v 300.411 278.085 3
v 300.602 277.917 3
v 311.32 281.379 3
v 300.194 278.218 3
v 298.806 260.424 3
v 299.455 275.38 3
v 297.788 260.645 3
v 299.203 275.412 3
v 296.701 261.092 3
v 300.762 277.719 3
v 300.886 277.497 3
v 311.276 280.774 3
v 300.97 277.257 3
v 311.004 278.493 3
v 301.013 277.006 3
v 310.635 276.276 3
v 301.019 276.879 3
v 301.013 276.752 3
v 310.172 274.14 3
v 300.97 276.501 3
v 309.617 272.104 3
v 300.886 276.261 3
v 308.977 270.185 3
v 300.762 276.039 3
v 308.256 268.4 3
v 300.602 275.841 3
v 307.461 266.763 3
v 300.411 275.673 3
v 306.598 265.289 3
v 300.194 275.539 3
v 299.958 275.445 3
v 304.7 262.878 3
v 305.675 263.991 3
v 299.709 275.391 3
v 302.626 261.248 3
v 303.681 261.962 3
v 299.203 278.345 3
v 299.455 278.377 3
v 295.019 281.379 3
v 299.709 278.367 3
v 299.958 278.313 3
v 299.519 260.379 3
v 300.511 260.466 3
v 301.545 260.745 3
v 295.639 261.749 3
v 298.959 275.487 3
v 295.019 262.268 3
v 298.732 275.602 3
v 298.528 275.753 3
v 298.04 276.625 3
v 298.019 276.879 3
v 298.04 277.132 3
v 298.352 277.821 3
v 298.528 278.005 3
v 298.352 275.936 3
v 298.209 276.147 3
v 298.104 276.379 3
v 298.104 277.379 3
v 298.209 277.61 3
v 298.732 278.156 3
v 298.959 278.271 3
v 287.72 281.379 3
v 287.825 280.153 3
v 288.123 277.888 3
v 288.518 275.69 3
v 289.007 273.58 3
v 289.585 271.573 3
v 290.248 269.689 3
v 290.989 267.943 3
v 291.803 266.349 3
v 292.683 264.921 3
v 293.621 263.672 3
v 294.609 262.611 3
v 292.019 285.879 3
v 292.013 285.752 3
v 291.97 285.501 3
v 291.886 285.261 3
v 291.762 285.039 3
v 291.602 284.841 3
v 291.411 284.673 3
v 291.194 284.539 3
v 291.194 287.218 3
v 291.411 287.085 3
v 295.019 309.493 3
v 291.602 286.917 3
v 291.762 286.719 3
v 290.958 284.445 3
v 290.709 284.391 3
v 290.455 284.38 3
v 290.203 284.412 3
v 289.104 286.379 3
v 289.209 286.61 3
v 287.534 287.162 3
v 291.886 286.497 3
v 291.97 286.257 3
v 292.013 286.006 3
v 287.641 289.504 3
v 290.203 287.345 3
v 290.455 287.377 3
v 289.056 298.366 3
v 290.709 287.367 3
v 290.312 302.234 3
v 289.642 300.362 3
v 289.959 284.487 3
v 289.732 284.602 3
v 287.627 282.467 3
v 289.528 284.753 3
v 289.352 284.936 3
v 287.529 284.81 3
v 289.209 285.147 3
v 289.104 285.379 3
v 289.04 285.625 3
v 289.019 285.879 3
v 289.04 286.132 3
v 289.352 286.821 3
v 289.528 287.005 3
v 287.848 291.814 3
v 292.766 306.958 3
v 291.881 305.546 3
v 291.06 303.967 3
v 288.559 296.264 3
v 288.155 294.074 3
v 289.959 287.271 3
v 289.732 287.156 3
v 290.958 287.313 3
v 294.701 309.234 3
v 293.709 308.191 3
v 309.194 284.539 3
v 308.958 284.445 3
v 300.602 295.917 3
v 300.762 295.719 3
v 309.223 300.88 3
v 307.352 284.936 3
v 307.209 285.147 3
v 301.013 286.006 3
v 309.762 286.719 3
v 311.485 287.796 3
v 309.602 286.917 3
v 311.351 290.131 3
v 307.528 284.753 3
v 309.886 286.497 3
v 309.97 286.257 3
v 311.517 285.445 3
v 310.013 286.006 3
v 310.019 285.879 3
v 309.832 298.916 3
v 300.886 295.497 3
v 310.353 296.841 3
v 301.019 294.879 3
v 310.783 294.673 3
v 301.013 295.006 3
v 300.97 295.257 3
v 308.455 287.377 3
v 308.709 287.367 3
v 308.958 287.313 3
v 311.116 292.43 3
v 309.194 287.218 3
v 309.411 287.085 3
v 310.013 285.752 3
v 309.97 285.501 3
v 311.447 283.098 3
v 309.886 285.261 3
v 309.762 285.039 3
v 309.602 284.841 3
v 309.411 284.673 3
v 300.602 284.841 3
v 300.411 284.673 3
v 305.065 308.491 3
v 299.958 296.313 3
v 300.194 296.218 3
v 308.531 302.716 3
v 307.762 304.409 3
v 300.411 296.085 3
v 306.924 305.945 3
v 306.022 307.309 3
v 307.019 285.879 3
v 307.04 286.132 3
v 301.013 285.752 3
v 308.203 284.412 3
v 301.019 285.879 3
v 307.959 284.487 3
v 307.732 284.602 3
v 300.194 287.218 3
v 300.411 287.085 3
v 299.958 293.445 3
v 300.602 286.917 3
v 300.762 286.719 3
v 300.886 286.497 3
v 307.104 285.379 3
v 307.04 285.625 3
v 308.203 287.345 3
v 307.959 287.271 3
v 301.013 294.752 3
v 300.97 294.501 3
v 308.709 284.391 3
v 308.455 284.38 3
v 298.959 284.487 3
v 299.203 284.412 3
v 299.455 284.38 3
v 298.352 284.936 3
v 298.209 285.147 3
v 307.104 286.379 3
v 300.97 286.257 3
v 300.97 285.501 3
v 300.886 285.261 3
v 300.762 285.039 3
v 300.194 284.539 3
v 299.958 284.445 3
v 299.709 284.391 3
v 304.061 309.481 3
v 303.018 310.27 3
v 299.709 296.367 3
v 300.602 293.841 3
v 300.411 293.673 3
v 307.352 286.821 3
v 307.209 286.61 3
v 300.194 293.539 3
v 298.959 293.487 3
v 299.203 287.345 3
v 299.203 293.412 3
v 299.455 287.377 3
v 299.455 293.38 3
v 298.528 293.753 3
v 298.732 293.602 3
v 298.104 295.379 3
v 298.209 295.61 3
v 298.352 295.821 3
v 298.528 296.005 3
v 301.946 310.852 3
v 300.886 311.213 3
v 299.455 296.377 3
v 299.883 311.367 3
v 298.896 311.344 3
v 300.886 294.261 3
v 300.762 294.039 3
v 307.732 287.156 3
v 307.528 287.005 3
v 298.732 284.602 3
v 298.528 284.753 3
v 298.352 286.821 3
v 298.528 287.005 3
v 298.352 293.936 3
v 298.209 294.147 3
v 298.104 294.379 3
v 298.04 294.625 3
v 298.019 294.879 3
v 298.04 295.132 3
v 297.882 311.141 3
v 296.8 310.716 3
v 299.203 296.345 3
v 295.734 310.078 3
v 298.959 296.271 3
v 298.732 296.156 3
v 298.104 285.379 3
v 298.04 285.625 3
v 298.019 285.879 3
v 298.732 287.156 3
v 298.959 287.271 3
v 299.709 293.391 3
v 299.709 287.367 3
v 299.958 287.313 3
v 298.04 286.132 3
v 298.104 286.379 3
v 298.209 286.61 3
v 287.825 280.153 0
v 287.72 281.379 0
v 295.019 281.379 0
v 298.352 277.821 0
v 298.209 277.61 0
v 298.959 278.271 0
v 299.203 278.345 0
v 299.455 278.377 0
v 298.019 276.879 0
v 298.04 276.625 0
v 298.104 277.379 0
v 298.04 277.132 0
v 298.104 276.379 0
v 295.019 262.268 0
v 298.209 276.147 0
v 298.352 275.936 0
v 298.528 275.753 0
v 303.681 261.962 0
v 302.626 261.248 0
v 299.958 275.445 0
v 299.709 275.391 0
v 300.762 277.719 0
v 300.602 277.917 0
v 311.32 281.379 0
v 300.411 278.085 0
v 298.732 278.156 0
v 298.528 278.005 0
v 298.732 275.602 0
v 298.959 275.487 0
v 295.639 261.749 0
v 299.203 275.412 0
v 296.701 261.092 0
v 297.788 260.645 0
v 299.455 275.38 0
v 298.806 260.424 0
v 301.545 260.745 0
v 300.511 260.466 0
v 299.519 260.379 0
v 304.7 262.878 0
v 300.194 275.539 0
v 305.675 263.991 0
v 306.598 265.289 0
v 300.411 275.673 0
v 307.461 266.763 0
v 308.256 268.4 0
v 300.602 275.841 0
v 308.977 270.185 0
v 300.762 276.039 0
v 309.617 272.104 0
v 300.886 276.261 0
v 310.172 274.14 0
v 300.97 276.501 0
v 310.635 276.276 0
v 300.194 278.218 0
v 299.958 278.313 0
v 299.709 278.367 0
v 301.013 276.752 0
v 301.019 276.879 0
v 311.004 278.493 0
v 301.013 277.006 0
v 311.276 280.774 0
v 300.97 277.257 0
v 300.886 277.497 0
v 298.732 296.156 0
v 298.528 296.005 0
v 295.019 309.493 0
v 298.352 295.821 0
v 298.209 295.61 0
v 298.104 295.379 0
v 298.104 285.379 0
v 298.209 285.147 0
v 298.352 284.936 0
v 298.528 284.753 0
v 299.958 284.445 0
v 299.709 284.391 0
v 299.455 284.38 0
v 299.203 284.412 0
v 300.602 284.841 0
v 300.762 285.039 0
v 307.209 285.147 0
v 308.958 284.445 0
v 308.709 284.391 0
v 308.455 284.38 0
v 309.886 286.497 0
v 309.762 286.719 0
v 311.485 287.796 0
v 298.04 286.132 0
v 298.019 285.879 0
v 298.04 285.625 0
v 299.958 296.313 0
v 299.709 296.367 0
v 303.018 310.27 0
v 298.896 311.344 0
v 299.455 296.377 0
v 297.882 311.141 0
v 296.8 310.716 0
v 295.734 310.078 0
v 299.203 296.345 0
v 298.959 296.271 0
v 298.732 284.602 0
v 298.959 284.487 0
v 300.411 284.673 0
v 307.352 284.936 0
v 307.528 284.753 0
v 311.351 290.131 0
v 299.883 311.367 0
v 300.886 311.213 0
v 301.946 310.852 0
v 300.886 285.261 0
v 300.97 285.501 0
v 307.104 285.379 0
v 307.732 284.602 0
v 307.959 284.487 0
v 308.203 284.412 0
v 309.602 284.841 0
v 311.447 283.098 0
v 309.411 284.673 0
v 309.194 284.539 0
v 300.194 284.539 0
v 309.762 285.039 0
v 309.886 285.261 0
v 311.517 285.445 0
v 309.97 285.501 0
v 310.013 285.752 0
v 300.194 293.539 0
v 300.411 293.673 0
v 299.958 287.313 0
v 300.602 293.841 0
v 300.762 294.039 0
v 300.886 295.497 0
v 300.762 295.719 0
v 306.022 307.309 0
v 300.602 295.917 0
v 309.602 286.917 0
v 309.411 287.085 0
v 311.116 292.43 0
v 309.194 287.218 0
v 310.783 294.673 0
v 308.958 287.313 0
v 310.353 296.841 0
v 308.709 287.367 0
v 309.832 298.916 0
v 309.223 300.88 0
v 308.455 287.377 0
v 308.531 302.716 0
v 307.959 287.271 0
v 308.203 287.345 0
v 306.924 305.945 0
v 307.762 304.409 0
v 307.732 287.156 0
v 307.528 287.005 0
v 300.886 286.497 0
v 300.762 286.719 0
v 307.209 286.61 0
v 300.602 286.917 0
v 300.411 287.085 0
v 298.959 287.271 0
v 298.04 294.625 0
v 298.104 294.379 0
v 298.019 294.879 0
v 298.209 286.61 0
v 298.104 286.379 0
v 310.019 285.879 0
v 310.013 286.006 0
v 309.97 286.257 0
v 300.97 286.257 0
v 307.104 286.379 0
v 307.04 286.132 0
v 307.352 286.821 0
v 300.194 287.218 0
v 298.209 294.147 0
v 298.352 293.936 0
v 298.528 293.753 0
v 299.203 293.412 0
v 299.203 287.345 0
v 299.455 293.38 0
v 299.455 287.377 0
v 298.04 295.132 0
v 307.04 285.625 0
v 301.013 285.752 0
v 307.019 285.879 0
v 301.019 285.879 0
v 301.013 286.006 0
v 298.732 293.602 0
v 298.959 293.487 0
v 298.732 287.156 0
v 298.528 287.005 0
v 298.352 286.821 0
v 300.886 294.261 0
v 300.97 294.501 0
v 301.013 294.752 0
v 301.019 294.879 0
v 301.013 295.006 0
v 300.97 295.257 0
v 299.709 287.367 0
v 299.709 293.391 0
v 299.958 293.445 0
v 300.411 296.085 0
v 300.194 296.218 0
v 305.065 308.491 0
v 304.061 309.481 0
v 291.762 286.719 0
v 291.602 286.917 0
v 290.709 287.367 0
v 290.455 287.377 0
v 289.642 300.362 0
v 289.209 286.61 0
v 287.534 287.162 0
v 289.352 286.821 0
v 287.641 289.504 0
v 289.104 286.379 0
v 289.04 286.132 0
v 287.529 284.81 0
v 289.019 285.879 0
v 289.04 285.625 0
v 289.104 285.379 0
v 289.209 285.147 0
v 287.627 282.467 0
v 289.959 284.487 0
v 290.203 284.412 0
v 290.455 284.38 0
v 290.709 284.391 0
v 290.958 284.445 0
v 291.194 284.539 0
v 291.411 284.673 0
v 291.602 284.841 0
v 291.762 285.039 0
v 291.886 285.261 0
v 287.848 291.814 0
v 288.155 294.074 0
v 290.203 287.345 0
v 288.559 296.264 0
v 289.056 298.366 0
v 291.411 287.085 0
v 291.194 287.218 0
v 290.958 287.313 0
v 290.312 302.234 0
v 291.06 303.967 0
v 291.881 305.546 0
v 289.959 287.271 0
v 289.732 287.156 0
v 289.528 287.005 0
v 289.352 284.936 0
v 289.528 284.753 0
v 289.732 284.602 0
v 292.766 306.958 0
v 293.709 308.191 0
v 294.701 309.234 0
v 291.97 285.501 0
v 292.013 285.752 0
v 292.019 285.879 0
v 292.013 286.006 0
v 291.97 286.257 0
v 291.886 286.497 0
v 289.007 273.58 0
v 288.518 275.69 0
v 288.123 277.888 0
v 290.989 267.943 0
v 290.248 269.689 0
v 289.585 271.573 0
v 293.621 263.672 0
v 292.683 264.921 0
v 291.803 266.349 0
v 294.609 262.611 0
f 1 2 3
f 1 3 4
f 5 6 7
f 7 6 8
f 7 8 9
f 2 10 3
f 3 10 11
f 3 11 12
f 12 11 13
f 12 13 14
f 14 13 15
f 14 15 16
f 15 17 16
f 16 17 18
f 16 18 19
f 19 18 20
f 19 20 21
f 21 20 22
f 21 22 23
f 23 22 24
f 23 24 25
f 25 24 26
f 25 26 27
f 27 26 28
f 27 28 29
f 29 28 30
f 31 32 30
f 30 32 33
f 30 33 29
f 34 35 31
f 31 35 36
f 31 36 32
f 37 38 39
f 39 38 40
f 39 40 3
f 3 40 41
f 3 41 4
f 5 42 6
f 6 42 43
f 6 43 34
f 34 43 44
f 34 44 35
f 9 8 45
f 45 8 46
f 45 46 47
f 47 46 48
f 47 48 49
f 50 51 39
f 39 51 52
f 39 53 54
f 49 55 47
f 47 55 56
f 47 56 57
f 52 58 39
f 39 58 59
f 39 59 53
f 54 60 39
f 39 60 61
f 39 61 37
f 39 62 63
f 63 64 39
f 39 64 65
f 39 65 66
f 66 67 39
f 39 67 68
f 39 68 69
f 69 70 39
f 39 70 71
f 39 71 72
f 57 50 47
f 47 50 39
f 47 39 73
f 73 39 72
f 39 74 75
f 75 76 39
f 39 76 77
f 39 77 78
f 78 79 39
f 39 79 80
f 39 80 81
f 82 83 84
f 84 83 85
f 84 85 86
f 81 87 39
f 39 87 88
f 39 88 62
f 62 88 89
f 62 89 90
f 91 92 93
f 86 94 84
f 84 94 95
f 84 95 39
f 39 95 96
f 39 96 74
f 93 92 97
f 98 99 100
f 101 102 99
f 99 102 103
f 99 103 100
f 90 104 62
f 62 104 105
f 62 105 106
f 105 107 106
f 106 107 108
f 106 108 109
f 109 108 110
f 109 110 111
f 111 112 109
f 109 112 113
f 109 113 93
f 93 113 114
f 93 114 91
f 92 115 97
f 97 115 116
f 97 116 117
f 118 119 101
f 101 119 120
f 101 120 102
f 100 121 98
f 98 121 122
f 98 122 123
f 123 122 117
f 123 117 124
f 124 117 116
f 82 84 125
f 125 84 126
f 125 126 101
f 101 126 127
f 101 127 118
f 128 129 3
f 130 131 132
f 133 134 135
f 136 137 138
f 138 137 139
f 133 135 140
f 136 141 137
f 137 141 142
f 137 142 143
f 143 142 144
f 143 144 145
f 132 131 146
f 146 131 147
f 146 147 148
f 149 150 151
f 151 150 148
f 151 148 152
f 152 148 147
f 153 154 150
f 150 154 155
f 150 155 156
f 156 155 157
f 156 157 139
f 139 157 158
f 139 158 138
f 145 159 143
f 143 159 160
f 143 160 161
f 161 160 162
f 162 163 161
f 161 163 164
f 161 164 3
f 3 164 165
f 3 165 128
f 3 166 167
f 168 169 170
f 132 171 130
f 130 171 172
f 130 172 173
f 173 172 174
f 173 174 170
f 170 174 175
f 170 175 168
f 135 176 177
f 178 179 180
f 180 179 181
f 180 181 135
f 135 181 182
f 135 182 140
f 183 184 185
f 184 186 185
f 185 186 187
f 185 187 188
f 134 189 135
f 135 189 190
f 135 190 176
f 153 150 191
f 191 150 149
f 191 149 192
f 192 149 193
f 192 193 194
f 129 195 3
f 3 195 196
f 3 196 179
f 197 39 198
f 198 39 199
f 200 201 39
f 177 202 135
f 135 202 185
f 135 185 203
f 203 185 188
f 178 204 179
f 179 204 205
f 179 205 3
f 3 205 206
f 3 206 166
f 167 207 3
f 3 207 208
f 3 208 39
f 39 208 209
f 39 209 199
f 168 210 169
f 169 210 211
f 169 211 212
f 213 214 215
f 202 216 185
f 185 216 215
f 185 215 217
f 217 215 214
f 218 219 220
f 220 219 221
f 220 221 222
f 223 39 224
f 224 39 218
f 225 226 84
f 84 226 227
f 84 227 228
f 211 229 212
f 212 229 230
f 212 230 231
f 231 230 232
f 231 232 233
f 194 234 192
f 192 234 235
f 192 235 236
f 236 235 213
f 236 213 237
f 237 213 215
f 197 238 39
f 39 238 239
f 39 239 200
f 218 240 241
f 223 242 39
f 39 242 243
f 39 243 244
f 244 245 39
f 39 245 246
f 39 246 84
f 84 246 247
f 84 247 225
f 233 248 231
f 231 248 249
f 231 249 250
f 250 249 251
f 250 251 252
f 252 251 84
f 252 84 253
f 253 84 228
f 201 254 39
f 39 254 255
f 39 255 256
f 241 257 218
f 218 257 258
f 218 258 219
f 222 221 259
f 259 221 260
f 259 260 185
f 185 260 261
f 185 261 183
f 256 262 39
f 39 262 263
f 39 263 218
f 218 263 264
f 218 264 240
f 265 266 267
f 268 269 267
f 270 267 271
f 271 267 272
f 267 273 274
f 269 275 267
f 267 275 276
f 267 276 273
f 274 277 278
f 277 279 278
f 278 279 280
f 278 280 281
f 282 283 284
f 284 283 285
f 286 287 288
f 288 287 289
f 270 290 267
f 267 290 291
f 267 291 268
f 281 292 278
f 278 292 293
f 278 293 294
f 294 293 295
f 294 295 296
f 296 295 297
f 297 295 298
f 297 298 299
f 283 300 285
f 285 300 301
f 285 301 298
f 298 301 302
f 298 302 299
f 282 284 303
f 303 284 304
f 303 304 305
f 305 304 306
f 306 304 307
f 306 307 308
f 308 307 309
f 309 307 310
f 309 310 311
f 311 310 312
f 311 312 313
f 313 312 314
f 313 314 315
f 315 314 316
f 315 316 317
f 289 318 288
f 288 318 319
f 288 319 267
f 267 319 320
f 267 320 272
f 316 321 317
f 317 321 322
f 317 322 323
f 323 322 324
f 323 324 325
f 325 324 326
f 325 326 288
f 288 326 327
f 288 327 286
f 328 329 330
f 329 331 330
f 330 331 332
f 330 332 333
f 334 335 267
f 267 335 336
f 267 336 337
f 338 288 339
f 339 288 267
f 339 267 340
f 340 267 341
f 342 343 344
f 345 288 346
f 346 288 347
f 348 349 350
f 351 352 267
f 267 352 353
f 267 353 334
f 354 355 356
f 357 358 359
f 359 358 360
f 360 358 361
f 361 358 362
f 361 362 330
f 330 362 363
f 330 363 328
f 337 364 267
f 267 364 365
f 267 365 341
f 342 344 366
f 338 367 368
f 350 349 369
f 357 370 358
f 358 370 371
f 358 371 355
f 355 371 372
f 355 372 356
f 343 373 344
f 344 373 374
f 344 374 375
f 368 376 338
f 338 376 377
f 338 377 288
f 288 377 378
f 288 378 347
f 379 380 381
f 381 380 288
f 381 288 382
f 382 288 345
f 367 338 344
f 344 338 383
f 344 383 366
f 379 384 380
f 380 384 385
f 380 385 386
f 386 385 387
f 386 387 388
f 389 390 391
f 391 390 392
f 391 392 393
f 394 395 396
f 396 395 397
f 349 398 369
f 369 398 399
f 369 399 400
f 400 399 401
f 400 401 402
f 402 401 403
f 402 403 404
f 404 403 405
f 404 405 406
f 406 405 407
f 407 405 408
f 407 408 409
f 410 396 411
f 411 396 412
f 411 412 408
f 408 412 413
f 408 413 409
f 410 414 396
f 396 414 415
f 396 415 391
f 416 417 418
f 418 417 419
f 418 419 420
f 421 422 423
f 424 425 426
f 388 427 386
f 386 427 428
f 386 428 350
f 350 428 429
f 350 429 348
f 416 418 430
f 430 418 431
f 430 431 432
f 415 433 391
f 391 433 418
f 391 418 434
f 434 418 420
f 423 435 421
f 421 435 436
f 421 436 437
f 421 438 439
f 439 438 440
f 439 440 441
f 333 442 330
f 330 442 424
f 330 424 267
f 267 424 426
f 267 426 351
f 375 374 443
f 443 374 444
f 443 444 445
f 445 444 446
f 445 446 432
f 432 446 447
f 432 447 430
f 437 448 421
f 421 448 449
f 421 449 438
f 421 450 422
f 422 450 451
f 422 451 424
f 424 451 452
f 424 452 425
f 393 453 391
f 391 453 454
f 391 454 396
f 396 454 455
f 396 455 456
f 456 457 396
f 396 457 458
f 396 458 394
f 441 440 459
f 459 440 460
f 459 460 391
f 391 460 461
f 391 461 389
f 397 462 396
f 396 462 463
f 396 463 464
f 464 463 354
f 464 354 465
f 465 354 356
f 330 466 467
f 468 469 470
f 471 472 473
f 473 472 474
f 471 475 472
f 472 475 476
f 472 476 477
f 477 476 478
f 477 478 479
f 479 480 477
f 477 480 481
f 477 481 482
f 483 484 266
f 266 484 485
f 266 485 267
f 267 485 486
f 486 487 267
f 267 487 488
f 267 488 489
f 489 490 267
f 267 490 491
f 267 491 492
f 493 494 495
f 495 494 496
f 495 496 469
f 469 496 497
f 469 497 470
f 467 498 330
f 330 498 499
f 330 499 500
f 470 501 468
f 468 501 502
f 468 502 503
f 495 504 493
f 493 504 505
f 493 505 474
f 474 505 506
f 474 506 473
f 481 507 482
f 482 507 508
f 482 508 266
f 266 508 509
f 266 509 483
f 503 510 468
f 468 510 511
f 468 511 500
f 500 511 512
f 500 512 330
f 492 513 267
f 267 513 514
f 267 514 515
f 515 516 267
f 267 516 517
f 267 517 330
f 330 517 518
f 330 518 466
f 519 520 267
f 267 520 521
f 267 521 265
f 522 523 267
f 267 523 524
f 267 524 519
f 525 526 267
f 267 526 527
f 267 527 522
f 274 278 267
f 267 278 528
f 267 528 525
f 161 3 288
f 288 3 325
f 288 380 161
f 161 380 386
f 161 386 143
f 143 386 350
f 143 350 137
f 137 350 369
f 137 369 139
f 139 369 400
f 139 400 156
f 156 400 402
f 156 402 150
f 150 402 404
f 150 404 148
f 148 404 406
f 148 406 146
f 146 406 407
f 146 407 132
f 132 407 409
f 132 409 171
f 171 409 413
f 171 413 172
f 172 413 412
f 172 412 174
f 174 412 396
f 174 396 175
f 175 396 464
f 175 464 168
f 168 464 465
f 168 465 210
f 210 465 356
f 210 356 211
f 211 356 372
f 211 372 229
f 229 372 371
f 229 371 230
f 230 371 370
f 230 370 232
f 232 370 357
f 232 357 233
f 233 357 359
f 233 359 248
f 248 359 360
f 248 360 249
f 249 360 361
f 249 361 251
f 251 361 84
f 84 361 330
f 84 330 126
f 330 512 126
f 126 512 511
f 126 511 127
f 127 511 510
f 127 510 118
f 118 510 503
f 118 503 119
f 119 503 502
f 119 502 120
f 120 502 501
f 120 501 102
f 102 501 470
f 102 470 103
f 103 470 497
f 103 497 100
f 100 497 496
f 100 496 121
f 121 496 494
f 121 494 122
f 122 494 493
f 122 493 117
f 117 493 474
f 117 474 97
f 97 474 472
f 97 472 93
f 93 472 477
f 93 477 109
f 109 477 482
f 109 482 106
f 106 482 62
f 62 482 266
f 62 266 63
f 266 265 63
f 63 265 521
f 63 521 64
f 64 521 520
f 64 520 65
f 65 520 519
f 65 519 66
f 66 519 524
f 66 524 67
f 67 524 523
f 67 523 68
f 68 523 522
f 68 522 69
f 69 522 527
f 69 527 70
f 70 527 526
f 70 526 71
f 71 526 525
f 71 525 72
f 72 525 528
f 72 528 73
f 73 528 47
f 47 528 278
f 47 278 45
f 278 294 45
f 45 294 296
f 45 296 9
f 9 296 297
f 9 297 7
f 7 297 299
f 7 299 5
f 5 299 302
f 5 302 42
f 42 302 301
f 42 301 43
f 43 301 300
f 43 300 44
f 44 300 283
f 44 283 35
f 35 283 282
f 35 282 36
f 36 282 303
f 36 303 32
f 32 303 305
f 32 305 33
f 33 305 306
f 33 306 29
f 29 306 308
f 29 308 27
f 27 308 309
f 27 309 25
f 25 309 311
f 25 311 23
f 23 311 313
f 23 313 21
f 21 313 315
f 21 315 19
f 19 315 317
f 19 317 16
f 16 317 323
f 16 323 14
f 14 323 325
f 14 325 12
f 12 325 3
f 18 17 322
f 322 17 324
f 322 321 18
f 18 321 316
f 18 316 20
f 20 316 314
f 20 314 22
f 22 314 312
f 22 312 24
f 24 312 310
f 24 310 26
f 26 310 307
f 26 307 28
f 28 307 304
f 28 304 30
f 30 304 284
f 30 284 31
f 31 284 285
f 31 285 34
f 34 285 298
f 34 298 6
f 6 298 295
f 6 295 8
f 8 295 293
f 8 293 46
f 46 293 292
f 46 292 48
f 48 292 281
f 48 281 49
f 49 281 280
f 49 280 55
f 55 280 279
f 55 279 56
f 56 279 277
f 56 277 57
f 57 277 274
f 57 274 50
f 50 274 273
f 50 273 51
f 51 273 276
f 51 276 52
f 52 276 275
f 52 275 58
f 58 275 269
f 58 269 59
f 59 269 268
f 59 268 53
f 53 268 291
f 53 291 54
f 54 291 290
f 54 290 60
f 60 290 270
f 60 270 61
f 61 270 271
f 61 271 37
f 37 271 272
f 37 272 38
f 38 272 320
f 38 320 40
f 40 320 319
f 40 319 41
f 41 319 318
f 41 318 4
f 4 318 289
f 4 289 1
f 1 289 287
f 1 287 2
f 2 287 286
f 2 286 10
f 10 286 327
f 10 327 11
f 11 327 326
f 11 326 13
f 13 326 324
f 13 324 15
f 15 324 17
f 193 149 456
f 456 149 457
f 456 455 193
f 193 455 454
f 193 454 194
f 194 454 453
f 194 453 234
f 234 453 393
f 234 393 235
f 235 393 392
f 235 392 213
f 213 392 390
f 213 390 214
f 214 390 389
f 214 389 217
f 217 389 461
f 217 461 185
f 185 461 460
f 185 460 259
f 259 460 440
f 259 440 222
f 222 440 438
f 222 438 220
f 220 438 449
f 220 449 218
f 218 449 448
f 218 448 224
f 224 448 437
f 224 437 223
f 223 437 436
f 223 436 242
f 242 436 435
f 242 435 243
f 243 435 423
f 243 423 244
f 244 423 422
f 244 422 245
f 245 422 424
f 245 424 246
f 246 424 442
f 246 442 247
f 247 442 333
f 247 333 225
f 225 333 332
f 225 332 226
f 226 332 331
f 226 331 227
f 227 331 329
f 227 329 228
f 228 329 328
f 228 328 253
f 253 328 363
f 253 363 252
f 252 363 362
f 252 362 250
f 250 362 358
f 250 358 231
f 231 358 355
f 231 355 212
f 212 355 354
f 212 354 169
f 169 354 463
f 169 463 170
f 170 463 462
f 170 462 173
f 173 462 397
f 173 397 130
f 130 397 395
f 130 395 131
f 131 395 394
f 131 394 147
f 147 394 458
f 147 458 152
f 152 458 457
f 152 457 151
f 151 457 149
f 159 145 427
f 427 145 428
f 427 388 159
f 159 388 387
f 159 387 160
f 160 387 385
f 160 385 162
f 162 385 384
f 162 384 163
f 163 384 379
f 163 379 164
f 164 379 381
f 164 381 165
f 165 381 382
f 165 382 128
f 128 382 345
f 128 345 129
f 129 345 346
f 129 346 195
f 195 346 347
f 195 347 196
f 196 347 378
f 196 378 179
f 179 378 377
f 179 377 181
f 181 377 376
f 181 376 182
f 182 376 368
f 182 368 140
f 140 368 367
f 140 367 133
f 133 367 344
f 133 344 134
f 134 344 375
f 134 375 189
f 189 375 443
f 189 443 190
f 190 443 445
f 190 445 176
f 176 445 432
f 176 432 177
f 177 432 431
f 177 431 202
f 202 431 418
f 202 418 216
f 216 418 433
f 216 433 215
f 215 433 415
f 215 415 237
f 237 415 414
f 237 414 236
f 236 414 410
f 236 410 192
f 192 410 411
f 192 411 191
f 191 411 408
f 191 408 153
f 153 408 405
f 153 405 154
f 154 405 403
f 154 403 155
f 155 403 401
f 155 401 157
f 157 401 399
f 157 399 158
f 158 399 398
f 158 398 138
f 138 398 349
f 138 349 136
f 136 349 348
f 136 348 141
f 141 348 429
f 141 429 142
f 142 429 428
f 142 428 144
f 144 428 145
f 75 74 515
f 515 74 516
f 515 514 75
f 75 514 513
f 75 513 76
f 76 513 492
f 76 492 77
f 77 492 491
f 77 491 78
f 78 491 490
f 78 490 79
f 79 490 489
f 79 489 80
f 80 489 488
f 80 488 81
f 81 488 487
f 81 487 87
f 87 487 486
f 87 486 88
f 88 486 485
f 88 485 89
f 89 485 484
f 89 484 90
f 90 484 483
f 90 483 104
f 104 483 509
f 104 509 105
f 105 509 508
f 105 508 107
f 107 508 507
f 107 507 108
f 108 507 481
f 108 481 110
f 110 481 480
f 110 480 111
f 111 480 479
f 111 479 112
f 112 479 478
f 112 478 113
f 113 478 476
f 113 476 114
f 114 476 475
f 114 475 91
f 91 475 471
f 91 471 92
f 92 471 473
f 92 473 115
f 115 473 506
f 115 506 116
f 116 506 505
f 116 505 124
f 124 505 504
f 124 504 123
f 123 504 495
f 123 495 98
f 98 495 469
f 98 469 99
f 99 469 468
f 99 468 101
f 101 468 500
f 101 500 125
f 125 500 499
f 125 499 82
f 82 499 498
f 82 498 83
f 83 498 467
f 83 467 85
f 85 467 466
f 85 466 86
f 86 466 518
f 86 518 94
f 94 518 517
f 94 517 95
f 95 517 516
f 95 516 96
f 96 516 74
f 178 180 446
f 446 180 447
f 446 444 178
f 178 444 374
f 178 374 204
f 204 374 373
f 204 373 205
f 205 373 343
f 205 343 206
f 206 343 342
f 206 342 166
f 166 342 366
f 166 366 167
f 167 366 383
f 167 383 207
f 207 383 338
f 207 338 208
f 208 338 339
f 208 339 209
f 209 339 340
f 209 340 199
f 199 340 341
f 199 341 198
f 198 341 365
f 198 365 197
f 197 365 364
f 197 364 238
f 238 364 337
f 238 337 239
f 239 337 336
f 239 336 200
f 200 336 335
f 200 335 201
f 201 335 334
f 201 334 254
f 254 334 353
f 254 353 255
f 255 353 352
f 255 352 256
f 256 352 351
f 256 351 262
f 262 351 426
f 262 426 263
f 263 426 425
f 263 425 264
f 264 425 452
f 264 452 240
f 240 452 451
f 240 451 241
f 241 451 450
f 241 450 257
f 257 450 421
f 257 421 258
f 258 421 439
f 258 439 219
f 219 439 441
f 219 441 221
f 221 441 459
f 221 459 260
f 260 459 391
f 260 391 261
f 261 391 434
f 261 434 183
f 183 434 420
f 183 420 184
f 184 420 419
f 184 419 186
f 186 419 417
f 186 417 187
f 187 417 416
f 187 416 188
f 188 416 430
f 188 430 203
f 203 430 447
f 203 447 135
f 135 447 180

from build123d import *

# Parameters (mm, degrees)
MODEL_RX                = 25.5
MODEL_RY                = 12
MODEL_R                 = 1.5
SALIENTE_EXTRUIR1_DEPTH = 3


with BuildPart() as part:
    # Model → Saliente-Extruir1 (new body)
    with BuildSketch(Plane.XY):
        with Locations(Location((299.518754002, 285.878815596), (0, 0, -90))):
            Ellipse(MODEL_RX, MODEL_RY)
        with Locations((299.518754002, 276.878815596)):
            Circle(MODEL_R, mode=Mode.SUBTRACT)
        with Locations((299.518754002, 294.878815596)):
            Circle(MODEL_R, mode=Mode.SUBTRACT)
        with Locations((308.518754003, 285.878815596)):
            Circle(MODEL_R, mode=Mode.SUBTRACT)
        with Locations((290.518754002, 285.878815596)):
            Circle(MODEL_R, mode=Mode.SUBTRACT)
        with Locations((299.518754002, 285.878815596)):
            Circle(MODEL_R, mode=Mode.SUBTRACT)
    extrude(amount=SALIENTE_EXTRUIR1_DEPTH)


solid = part.part
